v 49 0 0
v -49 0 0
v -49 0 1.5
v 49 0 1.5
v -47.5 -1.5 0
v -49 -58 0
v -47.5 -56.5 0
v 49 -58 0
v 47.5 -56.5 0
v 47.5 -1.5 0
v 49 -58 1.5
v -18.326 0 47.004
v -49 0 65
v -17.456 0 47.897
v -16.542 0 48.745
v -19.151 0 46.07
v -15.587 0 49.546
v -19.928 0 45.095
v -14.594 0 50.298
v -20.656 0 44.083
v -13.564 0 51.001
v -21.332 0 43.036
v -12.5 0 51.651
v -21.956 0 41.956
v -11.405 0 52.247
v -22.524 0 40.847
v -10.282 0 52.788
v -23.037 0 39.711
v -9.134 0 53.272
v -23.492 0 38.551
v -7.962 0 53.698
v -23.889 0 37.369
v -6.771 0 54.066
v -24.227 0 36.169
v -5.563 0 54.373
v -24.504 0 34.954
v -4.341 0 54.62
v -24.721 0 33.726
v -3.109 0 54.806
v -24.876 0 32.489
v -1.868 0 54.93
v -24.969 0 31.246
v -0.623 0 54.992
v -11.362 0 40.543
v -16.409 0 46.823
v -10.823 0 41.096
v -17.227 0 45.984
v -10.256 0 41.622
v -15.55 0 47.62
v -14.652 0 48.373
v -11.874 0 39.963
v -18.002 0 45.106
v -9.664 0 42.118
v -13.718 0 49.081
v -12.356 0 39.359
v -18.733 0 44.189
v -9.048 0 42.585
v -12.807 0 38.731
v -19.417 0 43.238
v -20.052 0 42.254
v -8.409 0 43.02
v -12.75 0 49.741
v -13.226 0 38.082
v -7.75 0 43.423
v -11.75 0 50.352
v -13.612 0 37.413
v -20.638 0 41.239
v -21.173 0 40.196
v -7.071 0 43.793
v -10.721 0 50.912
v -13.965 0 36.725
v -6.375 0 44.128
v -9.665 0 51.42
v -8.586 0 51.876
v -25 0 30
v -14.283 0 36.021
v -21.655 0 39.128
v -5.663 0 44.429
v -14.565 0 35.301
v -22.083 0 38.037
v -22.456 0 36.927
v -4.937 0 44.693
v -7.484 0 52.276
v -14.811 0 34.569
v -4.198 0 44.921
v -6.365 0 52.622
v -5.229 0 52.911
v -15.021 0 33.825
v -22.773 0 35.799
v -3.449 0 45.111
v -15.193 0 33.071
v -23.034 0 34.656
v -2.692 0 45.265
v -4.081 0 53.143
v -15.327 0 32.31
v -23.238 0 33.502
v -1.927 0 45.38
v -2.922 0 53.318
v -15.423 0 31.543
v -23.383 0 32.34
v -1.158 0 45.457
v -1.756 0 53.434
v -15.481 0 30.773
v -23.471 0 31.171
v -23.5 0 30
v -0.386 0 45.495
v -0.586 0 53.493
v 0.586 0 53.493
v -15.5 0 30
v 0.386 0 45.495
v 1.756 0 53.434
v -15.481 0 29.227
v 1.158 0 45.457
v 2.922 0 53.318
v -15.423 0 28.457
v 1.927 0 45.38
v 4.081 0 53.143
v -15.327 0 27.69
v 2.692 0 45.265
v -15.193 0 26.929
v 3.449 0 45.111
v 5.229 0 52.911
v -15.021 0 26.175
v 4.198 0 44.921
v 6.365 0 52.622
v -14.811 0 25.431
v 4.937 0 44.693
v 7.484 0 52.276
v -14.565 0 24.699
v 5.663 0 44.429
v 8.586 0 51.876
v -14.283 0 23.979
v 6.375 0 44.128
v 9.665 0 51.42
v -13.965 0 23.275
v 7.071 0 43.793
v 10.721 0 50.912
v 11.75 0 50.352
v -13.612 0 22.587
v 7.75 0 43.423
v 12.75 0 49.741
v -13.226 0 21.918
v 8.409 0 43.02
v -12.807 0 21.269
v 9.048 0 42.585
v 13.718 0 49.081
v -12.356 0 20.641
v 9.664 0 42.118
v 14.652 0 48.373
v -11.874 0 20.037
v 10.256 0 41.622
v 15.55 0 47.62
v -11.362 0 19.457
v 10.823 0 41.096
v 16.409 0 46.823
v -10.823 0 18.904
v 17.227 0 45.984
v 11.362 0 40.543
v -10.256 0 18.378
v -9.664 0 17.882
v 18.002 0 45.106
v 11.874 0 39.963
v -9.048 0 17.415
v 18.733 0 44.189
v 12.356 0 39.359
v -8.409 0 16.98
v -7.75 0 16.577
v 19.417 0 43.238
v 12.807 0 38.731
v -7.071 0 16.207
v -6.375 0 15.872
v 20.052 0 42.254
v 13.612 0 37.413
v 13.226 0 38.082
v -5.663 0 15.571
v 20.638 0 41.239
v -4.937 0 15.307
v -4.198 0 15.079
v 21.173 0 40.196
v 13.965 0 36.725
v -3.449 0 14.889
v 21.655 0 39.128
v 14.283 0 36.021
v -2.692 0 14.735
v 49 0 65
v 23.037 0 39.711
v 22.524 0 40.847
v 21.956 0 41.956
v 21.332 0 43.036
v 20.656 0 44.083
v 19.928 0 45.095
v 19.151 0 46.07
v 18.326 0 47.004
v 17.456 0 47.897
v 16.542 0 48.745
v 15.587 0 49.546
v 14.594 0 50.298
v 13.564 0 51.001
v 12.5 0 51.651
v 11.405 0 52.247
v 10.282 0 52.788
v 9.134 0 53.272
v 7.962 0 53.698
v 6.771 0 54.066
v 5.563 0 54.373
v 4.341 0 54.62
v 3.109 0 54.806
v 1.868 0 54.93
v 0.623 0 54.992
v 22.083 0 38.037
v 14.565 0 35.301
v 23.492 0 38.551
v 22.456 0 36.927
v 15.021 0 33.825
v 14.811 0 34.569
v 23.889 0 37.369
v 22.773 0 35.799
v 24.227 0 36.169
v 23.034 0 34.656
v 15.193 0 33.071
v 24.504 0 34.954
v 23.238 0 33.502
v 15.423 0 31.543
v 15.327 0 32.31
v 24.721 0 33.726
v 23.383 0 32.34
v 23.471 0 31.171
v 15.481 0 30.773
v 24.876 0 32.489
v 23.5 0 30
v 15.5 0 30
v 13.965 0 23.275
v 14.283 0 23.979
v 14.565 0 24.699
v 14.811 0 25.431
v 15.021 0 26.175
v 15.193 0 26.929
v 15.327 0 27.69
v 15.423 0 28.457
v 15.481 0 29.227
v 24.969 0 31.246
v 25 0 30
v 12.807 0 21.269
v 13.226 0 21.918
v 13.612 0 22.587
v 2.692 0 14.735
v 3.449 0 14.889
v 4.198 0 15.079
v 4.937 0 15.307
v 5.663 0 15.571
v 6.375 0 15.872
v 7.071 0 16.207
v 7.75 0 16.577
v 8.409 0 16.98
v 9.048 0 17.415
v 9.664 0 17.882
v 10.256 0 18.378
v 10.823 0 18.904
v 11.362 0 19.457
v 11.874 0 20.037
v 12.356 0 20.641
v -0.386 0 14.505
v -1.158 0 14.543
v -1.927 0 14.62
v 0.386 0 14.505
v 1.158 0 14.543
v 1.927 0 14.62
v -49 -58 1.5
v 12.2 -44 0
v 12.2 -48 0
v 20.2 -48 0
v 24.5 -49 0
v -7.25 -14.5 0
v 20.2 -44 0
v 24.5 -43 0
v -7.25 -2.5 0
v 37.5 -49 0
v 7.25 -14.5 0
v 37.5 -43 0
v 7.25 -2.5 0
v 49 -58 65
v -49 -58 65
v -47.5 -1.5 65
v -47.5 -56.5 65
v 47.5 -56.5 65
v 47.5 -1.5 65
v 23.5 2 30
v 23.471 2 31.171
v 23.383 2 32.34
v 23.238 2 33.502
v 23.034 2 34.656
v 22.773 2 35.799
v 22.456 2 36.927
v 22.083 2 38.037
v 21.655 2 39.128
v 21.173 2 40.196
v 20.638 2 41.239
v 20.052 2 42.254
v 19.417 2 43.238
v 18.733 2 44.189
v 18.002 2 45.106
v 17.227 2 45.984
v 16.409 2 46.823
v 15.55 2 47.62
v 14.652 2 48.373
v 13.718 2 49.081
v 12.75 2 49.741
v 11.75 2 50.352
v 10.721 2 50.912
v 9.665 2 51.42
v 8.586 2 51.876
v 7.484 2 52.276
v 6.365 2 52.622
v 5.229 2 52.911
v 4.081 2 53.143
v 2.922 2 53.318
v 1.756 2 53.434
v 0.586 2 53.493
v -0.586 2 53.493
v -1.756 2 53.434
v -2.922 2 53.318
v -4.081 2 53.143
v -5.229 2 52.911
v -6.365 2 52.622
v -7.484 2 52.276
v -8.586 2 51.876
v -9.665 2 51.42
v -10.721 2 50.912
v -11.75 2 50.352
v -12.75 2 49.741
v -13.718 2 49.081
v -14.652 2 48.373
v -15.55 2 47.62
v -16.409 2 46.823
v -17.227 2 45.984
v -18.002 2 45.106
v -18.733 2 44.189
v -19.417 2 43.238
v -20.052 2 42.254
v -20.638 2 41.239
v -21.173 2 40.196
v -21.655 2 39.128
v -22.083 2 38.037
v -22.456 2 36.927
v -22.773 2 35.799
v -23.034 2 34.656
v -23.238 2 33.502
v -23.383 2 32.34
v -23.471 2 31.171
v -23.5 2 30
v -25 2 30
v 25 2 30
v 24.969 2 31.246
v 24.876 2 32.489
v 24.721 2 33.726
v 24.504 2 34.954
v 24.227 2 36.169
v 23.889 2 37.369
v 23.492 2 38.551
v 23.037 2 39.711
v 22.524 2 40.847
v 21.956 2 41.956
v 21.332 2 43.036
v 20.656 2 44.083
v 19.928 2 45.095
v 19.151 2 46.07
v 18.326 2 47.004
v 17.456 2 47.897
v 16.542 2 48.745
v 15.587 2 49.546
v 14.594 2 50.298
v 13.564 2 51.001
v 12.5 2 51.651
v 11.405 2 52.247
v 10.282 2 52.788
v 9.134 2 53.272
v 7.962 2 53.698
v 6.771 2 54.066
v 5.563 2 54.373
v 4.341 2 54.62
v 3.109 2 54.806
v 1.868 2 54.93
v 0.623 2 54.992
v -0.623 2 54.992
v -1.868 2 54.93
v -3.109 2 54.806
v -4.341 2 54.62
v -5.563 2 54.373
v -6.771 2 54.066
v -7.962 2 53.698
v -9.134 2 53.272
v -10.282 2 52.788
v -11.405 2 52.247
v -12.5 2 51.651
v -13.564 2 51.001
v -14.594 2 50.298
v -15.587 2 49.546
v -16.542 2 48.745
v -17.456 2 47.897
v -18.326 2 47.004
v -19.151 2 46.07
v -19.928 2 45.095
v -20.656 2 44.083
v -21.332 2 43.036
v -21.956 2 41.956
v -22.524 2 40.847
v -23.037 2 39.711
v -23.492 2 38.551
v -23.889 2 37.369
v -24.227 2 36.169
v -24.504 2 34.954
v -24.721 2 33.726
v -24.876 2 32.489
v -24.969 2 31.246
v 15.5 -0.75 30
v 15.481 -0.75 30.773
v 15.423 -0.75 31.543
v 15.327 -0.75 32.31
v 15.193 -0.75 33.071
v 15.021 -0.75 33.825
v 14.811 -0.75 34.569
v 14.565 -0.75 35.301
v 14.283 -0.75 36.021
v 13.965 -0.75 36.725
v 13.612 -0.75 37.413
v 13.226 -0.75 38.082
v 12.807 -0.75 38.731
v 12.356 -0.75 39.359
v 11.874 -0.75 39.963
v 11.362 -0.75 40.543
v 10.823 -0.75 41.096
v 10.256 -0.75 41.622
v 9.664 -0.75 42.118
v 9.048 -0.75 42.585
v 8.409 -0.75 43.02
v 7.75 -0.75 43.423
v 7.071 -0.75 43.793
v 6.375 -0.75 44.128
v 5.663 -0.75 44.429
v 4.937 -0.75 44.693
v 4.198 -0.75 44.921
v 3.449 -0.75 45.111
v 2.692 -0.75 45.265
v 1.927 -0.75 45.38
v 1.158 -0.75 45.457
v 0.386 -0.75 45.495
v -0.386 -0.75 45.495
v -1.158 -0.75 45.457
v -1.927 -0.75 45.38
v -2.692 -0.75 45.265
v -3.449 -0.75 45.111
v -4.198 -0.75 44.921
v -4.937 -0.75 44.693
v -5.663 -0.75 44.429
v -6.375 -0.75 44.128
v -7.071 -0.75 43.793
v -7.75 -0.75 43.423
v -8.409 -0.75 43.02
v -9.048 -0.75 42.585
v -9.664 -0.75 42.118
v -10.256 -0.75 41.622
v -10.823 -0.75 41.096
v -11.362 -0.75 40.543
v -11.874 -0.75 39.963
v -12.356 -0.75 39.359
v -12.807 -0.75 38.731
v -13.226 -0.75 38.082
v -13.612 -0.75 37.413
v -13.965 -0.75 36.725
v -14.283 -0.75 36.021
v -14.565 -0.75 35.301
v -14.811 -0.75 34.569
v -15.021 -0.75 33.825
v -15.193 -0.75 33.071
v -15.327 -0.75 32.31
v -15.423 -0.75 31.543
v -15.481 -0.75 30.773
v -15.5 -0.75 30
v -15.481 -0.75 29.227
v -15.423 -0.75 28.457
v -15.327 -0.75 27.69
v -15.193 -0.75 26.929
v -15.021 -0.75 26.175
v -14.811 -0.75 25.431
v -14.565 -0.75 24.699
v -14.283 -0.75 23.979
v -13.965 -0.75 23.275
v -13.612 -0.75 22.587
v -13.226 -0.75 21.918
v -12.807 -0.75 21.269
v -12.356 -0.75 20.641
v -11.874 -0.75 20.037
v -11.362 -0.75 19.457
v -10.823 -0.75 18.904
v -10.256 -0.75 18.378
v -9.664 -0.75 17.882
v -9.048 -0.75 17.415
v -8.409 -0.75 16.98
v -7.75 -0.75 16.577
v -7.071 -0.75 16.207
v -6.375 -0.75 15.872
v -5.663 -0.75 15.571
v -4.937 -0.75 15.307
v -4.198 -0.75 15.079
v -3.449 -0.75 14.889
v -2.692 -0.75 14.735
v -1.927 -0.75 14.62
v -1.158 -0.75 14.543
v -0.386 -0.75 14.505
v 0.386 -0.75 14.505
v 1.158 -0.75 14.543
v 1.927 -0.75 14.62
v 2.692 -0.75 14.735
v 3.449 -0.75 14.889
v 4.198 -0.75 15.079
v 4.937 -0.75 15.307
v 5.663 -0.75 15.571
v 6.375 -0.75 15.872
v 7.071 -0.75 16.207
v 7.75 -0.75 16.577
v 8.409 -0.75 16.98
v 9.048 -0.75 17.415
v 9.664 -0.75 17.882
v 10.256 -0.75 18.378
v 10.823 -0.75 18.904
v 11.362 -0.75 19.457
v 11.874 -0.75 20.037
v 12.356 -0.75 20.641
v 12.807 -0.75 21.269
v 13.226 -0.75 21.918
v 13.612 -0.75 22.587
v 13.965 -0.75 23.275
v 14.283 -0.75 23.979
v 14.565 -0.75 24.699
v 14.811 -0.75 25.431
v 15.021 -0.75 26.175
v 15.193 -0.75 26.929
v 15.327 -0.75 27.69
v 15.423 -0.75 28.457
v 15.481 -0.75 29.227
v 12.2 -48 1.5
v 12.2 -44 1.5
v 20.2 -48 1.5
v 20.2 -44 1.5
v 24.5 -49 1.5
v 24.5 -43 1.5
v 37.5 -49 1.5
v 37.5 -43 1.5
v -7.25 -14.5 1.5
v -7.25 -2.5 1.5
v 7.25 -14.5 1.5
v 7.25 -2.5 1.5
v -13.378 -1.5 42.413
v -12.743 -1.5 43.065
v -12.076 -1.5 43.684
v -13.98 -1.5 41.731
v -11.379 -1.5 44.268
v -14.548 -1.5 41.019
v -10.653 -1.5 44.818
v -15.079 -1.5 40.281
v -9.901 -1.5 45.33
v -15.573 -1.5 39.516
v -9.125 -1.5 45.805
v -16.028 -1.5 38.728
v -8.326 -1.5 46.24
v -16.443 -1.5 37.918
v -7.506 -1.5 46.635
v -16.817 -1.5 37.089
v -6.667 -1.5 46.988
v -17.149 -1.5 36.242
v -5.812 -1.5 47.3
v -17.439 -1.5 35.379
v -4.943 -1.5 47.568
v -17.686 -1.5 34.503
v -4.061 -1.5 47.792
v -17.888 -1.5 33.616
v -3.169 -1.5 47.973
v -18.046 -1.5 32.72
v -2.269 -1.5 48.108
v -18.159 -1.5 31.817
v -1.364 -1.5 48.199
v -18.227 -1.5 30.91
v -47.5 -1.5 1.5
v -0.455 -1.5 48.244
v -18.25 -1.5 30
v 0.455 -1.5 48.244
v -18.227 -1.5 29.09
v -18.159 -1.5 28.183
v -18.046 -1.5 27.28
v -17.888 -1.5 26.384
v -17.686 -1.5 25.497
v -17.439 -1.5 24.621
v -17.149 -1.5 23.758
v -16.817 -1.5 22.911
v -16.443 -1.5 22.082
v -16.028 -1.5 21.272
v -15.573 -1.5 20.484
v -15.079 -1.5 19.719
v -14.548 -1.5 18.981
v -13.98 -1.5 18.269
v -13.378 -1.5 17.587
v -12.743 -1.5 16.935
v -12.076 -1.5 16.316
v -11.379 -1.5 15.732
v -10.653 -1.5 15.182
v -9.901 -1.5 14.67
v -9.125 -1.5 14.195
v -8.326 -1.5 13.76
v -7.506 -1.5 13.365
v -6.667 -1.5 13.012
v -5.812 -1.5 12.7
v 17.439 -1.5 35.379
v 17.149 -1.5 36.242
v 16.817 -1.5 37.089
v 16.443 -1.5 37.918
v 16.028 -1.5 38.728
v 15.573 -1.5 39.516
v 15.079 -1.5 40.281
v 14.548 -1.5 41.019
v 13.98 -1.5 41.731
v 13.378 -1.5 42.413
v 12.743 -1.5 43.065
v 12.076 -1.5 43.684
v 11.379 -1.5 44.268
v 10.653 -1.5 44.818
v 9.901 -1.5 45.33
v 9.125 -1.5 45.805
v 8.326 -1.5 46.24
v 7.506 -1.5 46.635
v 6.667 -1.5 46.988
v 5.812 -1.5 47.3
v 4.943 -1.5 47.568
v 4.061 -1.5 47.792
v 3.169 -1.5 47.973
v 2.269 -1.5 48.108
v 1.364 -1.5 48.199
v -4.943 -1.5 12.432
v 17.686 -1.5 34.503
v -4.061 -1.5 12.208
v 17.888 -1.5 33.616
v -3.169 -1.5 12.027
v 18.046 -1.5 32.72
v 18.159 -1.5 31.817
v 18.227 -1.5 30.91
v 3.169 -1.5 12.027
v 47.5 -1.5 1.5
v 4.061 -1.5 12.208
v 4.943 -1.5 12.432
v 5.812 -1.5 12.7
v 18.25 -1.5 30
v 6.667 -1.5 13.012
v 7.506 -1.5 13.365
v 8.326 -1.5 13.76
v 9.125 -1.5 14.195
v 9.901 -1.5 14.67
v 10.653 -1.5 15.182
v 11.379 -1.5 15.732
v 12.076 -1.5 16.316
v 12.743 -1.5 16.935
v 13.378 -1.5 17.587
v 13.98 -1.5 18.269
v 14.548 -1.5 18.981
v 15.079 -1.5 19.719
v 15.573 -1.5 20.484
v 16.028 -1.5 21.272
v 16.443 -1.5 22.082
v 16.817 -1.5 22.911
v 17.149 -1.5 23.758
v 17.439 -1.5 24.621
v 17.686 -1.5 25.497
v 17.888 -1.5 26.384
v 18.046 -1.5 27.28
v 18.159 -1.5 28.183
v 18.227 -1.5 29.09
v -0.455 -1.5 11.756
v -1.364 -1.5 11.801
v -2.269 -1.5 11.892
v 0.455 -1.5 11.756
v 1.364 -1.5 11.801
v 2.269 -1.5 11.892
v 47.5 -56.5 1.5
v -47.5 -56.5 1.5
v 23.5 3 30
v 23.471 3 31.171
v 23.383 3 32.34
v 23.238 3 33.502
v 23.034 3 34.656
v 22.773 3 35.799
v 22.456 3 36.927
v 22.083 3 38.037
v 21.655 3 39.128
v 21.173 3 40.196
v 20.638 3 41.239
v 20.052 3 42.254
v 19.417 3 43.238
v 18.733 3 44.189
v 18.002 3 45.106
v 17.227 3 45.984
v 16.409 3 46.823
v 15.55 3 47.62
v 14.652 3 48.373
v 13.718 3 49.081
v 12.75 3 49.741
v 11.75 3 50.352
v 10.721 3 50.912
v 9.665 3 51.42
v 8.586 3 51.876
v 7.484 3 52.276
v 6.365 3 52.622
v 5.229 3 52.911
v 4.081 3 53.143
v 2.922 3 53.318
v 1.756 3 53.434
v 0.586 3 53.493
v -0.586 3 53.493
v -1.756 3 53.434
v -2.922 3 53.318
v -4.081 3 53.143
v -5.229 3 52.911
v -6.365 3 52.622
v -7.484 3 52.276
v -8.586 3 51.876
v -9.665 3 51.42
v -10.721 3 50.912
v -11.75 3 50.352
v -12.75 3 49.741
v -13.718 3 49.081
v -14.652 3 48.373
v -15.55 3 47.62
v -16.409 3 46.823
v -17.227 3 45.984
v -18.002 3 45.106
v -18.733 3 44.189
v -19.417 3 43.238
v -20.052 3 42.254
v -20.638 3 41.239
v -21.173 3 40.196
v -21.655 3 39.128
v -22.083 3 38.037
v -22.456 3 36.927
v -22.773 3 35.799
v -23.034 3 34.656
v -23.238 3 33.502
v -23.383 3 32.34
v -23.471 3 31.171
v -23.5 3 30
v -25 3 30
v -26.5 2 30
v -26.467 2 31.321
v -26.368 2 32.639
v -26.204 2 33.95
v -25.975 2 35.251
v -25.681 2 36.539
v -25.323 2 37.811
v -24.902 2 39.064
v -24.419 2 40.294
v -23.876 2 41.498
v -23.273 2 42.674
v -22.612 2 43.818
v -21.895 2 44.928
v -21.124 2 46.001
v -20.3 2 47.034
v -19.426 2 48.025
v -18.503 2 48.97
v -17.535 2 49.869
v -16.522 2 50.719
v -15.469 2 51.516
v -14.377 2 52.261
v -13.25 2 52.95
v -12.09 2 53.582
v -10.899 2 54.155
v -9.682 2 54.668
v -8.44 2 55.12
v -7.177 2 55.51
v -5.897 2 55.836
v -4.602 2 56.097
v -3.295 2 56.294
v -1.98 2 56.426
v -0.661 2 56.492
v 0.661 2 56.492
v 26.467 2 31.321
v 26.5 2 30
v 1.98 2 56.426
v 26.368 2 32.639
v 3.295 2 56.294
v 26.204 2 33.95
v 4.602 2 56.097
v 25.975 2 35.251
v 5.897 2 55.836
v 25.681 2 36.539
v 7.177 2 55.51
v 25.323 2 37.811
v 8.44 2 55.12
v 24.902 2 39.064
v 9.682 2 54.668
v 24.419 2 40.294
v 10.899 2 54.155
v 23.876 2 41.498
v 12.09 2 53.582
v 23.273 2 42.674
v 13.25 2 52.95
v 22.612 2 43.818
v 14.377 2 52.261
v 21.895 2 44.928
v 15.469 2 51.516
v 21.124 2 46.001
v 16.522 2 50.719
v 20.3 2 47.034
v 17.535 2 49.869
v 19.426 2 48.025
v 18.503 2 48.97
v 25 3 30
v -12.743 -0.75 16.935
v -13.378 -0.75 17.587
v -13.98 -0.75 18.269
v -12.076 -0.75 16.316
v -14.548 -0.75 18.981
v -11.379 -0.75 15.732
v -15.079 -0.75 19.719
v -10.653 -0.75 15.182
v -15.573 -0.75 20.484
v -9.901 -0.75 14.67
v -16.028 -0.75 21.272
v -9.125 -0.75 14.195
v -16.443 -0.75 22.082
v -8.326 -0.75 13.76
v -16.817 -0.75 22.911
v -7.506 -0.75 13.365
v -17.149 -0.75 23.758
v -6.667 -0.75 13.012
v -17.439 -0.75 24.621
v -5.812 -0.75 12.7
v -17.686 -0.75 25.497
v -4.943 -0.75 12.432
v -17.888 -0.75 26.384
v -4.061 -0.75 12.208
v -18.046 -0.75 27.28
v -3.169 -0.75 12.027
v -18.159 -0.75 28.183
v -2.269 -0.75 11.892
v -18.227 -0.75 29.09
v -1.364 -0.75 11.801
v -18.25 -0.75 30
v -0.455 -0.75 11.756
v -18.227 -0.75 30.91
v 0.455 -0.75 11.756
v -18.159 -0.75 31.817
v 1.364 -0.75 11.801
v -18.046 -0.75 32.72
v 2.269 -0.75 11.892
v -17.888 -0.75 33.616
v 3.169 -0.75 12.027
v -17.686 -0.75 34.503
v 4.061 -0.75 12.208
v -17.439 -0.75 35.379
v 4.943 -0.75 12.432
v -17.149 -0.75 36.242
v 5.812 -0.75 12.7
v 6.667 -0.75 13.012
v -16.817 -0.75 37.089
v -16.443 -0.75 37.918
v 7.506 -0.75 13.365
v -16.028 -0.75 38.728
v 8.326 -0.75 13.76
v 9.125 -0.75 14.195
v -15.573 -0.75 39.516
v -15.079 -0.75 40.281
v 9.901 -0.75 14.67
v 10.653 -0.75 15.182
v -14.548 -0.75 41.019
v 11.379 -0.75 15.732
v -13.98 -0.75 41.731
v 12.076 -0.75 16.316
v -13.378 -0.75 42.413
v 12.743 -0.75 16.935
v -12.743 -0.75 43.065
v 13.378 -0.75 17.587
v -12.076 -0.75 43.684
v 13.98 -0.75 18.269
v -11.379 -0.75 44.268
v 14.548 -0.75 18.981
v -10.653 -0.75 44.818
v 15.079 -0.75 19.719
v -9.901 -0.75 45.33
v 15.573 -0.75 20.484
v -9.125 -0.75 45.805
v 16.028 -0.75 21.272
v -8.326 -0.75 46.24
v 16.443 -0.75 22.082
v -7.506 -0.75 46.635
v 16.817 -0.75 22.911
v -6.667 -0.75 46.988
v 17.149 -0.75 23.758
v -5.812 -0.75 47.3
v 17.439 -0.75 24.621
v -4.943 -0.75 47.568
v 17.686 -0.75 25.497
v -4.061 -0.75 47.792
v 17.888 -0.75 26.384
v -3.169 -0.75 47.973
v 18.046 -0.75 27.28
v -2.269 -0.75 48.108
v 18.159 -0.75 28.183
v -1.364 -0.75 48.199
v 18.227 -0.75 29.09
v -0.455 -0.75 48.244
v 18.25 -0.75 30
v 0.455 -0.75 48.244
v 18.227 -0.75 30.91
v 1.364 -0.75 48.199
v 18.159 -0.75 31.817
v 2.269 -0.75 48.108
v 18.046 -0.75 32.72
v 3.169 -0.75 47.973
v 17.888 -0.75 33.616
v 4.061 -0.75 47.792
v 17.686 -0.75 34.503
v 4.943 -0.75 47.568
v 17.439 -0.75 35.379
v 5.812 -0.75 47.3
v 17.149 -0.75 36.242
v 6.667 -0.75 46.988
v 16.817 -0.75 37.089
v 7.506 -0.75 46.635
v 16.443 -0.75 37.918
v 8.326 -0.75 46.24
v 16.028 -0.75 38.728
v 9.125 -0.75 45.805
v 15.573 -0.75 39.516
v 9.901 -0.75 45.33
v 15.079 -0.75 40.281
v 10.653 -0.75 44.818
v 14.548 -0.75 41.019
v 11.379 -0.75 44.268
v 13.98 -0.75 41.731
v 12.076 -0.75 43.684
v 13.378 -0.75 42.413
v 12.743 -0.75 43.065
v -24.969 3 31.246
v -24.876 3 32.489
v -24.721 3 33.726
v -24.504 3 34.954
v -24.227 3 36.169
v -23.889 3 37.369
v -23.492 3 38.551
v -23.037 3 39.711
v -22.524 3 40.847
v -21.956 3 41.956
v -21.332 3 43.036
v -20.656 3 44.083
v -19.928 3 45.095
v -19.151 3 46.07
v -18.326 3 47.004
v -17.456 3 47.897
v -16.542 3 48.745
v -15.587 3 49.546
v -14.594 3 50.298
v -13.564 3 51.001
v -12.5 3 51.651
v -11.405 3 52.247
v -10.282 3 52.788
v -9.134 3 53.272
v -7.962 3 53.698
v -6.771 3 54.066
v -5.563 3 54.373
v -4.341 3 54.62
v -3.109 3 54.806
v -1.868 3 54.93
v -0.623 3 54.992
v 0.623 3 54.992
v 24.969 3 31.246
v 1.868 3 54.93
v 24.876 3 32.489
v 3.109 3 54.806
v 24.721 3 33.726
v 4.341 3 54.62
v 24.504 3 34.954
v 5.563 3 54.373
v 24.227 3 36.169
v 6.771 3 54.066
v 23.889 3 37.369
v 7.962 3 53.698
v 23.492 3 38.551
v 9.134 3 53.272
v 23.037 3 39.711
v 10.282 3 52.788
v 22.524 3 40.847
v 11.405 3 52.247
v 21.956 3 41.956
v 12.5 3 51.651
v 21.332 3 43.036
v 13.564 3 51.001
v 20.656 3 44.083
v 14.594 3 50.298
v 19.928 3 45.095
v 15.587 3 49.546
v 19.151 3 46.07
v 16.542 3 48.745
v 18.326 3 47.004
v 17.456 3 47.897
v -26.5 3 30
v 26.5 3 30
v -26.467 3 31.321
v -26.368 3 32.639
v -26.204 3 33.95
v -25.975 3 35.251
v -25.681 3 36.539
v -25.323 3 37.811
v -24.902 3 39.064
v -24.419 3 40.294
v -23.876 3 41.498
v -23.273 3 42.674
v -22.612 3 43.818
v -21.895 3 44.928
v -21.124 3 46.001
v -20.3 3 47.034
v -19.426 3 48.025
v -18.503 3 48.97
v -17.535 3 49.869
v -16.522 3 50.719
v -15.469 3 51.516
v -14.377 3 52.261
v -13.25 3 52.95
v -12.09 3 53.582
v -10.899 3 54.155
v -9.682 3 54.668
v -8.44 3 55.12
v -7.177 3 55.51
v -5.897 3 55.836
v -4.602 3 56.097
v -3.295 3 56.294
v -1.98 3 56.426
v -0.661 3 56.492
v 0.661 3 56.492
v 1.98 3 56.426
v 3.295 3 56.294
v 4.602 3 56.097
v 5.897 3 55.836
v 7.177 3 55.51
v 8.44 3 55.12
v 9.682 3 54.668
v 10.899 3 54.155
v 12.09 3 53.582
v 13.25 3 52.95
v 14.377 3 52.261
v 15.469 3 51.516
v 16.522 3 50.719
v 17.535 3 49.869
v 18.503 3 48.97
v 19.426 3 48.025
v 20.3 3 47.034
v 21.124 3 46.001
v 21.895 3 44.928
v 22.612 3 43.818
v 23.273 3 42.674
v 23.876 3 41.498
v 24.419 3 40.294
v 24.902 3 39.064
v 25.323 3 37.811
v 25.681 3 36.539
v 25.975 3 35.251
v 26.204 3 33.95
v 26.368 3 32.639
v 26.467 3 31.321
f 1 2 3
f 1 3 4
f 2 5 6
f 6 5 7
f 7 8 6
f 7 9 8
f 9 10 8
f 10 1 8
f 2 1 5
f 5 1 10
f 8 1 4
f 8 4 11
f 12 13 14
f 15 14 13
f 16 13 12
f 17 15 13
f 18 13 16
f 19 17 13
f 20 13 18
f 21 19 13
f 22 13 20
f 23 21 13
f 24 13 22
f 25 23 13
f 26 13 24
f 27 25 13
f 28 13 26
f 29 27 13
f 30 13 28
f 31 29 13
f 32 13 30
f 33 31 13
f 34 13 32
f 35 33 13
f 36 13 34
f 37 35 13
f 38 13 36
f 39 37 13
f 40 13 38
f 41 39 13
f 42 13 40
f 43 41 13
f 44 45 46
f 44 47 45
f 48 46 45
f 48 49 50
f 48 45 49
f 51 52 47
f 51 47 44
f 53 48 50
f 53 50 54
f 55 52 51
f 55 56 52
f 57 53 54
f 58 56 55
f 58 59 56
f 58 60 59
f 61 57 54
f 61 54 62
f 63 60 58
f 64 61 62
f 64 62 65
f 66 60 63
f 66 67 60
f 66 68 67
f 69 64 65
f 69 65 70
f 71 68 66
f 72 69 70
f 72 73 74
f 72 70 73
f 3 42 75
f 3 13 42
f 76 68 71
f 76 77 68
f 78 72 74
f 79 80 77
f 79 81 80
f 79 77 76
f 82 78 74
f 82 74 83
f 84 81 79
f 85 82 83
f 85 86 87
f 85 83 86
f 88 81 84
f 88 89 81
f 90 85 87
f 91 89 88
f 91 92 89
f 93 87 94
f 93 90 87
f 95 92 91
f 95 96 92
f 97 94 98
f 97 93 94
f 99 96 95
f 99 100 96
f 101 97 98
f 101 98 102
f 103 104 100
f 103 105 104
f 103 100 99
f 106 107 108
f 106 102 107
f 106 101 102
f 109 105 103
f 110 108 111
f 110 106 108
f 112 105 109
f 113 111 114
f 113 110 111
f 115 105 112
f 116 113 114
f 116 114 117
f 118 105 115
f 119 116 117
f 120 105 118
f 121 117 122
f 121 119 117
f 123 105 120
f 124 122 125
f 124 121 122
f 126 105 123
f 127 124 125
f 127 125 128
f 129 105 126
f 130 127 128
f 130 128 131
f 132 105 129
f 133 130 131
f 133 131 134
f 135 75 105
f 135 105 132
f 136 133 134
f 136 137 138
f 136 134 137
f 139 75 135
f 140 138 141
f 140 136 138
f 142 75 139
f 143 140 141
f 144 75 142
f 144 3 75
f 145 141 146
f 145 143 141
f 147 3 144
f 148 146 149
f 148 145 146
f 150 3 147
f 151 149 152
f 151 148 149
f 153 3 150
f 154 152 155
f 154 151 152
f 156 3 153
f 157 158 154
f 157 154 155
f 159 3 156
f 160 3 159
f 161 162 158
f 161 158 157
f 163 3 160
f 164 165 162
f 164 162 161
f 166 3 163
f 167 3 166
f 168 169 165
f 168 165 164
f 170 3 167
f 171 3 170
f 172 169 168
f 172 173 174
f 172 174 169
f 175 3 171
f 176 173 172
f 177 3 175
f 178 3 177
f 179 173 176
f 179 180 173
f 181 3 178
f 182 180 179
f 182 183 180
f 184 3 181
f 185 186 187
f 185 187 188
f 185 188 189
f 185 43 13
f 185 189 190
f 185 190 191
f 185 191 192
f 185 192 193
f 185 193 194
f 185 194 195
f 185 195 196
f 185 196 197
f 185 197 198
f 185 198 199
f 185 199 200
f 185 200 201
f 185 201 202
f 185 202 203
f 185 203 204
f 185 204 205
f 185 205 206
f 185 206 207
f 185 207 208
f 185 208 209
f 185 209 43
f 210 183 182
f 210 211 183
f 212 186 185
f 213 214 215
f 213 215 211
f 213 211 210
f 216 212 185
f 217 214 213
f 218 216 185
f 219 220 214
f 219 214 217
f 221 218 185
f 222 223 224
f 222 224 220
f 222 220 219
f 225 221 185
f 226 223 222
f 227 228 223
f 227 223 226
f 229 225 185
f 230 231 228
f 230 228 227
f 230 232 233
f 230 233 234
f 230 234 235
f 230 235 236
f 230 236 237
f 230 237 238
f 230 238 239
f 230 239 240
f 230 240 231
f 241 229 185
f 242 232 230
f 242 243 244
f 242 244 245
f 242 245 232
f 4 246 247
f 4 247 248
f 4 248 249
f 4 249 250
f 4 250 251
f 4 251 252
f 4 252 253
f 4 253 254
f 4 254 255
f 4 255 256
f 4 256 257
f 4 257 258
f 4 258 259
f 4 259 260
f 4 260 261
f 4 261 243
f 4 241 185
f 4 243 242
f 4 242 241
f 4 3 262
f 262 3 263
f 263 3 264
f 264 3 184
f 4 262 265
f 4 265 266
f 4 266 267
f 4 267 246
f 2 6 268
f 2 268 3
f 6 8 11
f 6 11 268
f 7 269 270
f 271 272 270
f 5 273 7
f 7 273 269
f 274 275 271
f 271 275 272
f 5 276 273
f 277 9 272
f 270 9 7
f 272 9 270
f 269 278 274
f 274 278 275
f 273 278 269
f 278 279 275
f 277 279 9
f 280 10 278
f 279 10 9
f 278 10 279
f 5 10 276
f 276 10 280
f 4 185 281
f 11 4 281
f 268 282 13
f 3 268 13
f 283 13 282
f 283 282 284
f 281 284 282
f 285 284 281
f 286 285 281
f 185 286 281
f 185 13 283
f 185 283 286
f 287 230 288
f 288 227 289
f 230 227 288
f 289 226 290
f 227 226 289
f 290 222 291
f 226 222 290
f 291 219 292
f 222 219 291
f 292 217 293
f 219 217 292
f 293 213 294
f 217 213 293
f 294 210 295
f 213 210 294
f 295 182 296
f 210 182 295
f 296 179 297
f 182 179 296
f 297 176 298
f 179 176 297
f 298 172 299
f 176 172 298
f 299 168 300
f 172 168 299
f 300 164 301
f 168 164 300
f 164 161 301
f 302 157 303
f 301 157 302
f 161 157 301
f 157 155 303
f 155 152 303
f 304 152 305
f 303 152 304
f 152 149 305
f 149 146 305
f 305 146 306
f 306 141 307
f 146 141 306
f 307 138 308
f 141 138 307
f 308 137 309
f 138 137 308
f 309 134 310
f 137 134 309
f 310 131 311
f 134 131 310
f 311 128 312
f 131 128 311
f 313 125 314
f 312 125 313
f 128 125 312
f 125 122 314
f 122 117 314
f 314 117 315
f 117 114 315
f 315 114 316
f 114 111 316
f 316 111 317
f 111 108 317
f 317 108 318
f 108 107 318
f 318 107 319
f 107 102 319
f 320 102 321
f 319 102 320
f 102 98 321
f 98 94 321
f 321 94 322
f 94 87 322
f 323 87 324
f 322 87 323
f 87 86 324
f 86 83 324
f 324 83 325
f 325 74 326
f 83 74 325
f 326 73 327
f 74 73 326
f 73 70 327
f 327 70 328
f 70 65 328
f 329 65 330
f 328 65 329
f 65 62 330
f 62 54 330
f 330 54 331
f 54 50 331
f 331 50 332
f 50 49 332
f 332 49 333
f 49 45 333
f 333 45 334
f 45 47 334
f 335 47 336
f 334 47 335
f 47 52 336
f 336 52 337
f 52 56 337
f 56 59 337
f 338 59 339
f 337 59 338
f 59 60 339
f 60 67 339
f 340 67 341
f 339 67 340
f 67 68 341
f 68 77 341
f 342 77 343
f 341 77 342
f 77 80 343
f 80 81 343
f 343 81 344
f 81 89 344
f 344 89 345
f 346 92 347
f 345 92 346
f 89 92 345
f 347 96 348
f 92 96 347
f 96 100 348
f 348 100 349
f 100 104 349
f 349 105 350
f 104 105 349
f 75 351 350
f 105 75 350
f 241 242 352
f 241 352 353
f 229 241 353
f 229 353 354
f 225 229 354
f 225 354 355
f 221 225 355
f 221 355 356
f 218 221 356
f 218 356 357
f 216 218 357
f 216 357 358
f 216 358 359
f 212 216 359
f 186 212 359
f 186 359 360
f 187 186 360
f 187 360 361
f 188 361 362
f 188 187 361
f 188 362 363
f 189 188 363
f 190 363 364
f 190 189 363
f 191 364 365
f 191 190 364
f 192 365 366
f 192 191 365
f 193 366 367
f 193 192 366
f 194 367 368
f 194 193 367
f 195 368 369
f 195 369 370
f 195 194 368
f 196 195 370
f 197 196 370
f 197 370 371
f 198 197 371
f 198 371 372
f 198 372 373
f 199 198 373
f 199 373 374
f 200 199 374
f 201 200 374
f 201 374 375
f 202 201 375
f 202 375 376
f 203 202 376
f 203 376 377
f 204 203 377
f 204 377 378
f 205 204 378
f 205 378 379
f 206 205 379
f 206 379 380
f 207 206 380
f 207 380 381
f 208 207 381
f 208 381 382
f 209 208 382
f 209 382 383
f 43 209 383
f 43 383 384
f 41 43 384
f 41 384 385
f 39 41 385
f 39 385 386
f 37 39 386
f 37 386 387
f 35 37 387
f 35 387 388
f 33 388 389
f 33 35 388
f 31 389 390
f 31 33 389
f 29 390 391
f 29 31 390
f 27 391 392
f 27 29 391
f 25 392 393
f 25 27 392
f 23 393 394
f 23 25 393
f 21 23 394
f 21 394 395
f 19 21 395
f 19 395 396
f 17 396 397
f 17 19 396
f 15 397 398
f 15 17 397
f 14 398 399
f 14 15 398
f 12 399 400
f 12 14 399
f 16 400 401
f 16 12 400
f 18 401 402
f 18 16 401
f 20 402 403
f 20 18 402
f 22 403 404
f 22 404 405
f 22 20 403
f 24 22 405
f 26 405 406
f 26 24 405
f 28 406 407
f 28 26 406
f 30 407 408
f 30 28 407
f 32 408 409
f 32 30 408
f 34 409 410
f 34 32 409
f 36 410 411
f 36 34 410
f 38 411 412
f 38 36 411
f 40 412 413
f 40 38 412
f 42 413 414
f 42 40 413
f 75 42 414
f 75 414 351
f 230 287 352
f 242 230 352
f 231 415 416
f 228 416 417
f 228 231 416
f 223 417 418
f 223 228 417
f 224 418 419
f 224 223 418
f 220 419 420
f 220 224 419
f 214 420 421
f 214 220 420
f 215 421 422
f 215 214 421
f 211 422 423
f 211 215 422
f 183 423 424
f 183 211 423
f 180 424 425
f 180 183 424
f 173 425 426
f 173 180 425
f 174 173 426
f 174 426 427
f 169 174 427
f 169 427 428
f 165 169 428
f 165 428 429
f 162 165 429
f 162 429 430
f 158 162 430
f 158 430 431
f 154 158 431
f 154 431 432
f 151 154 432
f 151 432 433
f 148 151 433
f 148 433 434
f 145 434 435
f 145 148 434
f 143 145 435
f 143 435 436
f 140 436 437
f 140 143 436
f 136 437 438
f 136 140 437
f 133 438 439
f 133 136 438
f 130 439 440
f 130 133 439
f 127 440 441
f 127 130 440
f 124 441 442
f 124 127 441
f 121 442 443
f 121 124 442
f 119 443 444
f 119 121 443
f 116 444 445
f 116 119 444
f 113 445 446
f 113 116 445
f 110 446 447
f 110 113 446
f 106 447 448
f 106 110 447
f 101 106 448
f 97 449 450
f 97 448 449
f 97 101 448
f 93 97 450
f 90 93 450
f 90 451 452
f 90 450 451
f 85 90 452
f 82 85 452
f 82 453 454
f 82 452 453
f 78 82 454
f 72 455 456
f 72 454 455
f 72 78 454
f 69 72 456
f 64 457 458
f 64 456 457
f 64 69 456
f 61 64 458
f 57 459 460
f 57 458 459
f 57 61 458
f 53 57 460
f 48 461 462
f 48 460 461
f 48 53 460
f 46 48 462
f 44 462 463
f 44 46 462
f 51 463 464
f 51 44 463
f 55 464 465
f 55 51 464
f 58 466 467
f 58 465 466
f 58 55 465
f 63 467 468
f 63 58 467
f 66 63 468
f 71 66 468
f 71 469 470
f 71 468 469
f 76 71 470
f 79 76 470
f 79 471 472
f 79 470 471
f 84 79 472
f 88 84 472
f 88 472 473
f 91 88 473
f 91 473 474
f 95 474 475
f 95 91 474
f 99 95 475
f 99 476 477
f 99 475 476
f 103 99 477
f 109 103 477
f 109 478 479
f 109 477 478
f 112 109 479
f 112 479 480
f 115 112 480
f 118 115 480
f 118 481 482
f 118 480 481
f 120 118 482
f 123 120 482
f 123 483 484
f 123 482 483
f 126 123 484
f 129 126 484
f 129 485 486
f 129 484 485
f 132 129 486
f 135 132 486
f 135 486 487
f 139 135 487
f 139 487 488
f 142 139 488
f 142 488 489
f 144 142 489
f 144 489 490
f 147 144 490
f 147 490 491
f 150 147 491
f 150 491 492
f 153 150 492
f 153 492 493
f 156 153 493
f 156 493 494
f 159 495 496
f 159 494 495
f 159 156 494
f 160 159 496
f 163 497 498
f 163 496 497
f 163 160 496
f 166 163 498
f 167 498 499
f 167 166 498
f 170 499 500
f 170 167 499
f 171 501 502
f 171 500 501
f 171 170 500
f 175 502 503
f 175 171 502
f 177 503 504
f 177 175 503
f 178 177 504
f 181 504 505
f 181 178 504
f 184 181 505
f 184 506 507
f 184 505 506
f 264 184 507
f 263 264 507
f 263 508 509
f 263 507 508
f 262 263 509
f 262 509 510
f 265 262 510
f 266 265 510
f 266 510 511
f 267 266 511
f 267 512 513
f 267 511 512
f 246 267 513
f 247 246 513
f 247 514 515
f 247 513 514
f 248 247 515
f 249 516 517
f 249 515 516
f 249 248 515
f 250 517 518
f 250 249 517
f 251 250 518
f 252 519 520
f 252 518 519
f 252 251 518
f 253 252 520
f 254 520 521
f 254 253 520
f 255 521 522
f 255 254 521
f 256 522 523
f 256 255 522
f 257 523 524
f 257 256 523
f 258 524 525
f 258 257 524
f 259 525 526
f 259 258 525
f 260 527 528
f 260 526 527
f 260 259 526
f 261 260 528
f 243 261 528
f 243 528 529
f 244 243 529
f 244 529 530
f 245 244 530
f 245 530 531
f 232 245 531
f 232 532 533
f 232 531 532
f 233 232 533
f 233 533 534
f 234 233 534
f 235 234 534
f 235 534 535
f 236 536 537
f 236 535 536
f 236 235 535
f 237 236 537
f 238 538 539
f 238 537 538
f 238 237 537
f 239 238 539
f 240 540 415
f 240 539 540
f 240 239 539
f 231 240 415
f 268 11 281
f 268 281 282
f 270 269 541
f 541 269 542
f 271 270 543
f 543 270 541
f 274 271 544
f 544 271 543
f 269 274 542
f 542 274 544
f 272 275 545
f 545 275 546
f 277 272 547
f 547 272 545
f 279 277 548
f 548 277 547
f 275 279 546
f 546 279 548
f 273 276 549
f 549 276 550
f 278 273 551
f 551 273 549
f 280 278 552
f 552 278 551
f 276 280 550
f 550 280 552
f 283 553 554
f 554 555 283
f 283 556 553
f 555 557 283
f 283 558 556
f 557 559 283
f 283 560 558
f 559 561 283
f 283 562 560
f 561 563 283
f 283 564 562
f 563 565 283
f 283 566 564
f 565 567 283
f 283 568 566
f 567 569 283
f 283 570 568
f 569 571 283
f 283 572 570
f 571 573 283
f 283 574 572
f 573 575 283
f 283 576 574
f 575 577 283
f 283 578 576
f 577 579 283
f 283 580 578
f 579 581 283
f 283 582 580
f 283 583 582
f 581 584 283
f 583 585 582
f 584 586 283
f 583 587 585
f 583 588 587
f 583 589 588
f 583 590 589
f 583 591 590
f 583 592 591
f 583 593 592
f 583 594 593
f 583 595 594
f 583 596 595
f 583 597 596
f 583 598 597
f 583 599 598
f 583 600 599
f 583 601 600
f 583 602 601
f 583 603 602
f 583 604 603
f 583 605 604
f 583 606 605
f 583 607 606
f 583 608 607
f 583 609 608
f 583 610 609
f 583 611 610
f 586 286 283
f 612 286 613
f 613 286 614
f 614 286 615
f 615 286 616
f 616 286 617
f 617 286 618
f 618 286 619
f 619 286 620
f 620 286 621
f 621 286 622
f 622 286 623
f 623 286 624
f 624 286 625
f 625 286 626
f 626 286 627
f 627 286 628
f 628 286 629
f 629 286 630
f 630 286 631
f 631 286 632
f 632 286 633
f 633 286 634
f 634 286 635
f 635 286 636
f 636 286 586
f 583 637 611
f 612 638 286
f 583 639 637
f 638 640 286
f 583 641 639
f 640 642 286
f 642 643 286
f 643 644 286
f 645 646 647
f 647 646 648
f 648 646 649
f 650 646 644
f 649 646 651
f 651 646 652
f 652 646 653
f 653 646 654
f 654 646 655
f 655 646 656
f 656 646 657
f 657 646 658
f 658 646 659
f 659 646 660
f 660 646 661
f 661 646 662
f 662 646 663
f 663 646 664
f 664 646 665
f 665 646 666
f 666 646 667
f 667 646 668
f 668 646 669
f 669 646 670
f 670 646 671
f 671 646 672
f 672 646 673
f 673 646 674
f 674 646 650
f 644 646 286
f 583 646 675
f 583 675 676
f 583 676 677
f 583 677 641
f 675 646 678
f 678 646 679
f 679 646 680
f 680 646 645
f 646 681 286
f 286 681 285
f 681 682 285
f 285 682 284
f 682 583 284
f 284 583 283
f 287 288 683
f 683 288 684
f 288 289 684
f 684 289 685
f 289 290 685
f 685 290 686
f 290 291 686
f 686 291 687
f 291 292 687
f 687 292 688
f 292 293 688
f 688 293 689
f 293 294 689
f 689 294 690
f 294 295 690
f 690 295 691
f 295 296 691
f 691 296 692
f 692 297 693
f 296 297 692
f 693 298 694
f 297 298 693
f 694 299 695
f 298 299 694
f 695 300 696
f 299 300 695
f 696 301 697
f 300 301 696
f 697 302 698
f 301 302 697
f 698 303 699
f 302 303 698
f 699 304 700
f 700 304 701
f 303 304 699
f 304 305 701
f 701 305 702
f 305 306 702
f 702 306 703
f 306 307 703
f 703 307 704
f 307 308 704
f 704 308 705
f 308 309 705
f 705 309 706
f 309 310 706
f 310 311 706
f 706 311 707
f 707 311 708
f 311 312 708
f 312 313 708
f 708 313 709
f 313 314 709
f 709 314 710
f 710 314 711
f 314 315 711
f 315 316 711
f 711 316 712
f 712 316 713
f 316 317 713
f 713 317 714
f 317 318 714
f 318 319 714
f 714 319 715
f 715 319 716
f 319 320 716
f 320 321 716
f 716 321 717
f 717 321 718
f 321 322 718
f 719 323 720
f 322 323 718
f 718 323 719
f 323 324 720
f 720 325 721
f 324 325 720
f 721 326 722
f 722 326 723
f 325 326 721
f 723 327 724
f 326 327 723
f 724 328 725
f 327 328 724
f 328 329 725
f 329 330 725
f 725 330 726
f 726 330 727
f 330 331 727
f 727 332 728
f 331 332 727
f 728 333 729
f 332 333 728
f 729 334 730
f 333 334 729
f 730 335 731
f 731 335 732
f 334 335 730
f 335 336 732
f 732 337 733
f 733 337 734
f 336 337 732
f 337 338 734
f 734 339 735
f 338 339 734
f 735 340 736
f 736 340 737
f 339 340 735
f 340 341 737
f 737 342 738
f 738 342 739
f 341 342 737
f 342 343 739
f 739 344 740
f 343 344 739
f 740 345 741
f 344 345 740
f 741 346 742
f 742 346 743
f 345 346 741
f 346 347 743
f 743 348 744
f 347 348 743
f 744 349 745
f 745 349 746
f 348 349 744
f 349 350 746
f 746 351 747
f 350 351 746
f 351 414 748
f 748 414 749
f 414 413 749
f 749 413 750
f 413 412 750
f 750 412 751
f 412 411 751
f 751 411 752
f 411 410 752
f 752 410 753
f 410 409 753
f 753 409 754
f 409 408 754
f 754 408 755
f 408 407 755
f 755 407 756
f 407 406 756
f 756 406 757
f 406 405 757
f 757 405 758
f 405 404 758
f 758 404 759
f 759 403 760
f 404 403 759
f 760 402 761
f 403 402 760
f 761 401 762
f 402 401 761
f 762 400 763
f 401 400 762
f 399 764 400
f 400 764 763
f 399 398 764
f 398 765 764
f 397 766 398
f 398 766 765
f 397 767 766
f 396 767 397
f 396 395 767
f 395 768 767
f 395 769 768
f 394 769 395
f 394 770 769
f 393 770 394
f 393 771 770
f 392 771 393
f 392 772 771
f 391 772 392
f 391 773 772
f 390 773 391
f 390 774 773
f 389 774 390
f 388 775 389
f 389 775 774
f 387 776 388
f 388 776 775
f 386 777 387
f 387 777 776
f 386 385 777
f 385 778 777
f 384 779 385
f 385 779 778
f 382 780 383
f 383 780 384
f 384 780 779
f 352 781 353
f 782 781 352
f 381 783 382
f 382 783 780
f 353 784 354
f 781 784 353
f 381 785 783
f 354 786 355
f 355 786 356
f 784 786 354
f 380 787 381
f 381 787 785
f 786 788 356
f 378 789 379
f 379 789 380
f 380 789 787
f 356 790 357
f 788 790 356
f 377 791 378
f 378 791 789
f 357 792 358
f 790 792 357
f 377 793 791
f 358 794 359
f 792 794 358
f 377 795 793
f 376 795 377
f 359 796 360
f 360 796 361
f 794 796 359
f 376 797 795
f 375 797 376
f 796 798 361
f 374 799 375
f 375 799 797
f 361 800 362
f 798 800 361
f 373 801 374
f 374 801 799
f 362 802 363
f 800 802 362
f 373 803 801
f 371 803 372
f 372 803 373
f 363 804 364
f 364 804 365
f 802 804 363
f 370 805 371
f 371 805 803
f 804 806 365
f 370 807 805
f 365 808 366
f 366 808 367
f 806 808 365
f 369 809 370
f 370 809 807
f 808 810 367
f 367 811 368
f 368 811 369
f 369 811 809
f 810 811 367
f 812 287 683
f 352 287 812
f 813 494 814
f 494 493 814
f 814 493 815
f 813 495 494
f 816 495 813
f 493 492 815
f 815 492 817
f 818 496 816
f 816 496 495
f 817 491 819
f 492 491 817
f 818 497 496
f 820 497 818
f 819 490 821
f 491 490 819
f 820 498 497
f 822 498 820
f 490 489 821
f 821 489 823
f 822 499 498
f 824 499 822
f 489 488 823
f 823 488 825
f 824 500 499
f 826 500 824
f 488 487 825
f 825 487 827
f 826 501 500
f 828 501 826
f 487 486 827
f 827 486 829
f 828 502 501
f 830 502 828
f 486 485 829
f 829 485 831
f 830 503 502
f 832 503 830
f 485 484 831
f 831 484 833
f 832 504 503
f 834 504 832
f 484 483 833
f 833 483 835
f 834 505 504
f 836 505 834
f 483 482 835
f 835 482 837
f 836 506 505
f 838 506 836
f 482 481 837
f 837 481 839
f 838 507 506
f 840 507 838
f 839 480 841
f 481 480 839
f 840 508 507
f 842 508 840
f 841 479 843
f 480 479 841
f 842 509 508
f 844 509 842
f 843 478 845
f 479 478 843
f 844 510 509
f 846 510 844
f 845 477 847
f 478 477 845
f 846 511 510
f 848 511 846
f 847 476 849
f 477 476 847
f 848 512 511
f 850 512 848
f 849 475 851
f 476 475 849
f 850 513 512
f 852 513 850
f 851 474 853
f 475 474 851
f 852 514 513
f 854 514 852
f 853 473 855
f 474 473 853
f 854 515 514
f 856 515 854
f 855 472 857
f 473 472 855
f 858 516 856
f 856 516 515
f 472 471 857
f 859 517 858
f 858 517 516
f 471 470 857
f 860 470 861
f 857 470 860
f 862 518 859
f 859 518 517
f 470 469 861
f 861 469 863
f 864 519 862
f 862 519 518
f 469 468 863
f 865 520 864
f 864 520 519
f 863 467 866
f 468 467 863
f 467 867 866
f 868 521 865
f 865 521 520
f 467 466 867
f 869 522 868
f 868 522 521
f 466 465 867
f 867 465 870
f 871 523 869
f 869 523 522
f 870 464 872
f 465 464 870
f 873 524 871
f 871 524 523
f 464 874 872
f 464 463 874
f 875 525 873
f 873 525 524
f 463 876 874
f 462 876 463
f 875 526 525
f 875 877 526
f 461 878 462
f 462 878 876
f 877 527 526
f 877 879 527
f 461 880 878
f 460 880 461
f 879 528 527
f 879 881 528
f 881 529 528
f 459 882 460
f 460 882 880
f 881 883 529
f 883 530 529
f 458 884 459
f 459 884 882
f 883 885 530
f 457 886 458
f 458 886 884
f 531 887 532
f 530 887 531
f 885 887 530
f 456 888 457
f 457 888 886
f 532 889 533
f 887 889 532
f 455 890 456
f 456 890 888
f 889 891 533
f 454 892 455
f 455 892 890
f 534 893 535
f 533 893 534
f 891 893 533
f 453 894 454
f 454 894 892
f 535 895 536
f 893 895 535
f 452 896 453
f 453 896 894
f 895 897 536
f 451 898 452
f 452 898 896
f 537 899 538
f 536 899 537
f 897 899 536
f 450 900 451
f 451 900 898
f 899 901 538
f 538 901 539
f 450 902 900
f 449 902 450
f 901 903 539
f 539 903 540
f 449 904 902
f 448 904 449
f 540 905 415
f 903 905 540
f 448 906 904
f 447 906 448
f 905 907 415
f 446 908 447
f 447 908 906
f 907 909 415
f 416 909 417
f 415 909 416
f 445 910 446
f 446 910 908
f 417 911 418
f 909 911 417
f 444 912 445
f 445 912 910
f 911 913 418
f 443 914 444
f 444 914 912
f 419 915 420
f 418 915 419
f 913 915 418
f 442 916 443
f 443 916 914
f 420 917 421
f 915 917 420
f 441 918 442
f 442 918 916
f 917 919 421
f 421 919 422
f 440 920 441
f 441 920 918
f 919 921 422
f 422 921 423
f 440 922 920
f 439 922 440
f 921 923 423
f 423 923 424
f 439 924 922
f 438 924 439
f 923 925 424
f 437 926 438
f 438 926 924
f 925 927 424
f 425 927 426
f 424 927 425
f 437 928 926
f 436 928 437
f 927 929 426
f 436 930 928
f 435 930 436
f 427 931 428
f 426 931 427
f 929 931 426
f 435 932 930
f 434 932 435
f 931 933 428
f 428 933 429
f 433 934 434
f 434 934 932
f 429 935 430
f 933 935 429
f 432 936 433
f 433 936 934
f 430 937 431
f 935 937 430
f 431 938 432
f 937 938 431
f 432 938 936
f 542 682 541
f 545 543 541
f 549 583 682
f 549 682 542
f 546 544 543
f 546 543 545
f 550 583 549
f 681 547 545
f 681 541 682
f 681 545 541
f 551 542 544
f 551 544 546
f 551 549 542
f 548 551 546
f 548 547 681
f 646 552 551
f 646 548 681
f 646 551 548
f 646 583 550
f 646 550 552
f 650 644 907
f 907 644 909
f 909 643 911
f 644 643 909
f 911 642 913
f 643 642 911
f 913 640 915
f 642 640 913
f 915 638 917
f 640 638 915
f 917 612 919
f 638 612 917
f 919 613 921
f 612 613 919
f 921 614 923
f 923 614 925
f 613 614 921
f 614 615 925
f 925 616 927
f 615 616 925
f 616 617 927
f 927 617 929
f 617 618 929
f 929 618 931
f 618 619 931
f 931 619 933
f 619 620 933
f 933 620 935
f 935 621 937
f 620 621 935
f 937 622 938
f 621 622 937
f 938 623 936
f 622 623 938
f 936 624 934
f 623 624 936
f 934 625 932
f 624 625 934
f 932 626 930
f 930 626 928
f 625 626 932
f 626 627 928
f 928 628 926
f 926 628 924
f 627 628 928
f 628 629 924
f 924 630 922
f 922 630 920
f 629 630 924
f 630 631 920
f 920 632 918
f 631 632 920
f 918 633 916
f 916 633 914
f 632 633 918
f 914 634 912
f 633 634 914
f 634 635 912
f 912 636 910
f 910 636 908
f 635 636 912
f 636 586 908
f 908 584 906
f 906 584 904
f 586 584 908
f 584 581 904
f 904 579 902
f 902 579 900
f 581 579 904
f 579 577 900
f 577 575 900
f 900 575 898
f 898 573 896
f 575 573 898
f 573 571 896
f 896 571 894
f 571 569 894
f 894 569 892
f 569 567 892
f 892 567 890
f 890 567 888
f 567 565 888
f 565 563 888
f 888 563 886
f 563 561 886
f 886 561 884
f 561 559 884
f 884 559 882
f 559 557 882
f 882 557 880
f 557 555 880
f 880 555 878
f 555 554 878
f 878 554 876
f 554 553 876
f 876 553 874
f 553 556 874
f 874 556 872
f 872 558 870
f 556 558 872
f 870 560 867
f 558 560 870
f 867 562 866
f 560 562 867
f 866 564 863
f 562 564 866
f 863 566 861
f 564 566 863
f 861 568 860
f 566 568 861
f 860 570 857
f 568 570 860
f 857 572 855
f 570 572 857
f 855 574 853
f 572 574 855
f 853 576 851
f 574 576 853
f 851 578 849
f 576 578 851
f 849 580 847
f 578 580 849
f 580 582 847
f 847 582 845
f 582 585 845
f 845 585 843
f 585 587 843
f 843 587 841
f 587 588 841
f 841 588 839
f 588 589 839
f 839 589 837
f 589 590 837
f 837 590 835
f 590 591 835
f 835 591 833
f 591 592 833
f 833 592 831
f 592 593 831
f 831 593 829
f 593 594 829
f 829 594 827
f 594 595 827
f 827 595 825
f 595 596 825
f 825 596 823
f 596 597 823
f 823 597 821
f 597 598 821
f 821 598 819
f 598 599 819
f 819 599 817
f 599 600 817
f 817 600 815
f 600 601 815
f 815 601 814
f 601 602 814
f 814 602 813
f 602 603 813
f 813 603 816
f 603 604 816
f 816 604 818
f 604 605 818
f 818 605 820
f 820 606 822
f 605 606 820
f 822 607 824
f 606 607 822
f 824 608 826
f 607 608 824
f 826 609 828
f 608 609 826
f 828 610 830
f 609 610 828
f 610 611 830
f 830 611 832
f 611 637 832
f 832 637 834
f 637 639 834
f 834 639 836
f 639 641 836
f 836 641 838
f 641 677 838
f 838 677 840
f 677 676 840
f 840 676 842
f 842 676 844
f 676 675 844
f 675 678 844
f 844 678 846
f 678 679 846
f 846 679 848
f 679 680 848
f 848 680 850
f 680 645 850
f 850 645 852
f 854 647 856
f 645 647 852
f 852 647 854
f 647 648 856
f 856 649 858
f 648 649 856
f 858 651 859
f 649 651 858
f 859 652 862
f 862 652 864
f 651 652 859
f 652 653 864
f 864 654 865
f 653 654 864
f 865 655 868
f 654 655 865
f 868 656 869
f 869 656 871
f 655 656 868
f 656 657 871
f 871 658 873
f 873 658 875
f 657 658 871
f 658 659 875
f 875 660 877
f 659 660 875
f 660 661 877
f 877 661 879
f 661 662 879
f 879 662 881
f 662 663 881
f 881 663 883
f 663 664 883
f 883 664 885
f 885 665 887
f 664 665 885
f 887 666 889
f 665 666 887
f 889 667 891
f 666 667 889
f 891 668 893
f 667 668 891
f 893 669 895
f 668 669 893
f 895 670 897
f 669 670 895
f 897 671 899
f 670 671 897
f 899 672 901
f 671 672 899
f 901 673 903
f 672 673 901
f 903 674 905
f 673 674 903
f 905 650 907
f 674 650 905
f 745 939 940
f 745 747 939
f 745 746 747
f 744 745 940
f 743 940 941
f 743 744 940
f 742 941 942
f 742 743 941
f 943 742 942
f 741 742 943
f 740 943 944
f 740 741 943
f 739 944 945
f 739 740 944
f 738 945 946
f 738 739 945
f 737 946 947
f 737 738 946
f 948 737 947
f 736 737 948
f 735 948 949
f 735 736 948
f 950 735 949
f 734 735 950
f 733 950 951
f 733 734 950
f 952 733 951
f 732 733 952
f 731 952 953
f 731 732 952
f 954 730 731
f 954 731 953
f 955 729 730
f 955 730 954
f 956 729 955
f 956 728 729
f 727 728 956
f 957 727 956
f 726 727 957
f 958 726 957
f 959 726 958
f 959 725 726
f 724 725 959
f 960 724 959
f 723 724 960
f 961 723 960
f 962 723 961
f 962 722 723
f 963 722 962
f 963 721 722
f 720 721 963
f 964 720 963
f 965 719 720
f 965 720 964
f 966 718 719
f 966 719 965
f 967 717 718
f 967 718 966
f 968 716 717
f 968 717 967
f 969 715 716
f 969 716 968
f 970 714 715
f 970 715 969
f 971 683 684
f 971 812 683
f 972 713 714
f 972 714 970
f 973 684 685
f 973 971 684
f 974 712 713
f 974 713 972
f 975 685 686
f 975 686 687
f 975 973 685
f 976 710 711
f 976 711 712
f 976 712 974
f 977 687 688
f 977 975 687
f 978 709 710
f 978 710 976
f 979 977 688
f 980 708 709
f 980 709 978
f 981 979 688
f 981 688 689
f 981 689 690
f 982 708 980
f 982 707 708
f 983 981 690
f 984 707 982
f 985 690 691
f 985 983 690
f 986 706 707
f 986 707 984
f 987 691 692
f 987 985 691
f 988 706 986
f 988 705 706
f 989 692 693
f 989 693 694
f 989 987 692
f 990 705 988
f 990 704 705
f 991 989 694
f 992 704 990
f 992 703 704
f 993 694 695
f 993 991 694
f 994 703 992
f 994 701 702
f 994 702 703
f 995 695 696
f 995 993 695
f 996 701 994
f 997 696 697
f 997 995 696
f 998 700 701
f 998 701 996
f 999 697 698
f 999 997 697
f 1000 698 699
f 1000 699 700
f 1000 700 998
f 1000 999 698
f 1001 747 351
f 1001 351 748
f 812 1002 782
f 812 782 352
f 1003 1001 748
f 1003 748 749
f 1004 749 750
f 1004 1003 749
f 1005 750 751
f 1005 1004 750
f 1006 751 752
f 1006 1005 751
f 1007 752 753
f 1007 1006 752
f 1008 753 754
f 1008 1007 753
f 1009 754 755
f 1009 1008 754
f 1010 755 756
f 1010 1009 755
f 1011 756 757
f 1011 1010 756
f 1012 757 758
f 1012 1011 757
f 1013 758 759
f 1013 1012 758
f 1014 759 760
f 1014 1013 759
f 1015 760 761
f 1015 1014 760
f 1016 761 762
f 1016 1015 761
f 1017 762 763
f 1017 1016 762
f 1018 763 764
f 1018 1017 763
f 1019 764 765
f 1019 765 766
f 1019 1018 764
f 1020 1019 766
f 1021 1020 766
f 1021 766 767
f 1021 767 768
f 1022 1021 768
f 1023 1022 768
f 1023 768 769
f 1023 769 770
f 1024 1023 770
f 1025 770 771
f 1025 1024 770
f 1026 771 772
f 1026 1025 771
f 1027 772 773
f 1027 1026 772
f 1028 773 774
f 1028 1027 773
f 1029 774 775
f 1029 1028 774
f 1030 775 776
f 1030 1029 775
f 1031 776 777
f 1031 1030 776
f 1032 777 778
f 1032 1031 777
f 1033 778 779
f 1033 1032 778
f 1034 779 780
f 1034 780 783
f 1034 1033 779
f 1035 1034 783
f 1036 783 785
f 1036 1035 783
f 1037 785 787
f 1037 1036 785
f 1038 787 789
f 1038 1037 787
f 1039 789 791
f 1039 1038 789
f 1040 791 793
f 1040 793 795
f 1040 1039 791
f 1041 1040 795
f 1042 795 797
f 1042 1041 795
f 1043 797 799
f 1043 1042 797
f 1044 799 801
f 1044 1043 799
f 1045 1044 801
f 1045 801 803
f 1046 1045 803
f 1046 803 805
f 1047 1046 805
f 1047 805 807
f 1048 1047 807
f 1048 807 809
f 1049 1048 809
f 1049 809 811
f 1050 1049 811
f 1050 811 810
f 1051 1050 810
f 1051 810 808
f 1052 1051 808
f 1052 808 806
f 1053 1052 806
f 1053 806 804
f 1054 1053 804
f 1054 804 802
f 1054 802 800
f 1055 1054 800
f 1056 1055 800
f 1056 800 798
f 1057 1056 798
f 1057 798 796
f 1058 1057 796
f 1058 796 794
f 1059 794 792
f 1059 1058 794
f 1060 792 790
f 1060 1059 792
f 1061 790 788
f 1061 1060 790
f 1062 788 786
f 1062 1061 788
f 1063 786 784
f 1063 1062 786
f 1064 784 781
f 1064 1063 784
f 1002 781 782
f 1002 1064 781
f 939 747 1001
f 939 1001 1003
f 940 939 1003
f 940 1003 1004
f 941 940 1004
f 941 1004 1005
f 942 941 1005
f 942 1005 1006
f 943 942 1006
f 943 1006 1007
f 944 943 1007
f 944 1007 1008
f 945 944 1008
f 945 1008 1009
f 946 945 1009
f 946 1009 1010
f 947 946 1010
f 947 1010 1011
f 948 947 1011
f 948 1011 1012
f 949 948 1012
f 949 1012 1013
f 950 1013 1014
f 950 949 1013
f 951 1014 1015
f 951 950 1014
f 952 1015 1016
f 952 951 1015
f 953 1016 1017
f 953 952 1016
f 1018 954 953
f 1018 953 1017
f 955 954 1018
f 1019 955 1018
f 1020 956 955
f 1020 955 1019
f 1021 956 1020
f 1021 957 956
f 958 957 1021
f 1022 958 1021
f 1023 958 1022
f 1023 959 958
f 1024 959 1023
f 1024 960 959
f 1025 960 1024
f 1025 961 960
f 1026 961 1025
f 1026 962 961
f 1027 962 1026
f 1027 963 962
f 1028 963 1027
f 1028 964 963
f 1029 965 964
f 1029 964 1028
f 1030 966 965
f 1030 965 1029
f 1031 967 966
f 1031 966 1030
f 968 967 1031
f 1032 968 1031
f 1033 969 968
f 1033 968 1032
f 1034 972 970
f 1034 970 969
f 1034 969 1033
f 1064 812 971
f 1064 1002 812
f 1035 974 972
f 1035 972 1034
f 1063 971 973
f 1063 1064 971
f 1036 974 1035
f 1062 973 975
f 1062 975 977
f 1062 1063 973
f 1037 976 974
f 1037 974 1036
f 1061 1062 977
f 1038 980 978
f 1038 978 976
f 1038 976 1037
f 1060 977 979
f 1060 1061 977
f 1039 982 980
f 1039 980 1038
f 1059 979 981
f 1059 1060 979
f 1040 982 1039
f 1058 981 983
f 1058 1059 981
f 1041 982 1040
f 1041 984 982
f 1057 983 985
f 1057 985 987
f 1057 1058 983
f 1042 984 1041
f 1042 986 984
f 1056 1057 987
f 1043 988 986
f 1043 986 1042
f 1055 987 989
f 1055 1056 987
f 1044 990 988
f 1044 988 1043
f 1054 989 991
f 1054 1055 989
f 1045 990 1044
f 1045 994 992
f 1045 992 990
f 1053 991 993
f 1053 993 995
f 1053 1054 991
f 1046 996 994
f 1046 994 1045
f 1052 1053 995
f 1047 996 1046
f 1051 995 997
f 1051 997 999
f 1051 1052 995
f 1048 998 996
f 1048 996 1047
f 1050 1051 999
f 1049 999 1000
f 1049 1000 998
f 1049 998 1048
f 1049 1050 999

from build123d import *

# Parameters (mm, degrees)
SKETCH_W        = 98
SKETCH_H        = 58
SKETCH_W_2      = 95
SKETCH_H_2      = 55
PAD_DEPTH       = 65
SKETCH001_W     = 98
SKETCH001_H     = 58
PAD001_DEPTH    = 1.5
SKETCH002_R     = 15.5
POCKET_DEPTH    = 5
SKETCH004_R     = 18.25
POCKET002_DEPTH = 0.75
SKETCH003_W     = 14.5
SKETCH003_H     = 12
SKETCH003_W_2   = 13
SKETCH003_H_2   = 6
SKETCH003_W_3   = 8
SKETCH003_H_3   = 4
POCKET003_DEPTH = 5
PAD002_DEPTH    = 3
PAD003_DEPTH    = 1


with BuildPart() as part:
    # Sketch → Pad (new body)
    with BuildSketch(Plane.XY):
        with Locations((0, -29)):
            Rectangle(SKETCH_W, SKETCH_H)
        with Locations((0, -29)):
            Rectangle(SKETCH_W_2, SKETCH_H_2, mode=Mode.SUBTRACT)
    extrude(amount=PAD_DEPTH)

    # Sketch001 → Pad001 (join)
    with BuildSketch(Plane.XY):
        with Locations((0, -29)):
            Rectangle(SKETCH001_W, SKETCH001_H)
    extrude(amount=PAD001_DEPTH)

    # Sketch002 → Pocket (cut)
    with BuildSketch(Plane.XZ):
        with Locations((0, 30)):
            Circle(SKETCH002_R)
    extrude(amount=POCKET_DEPTH, mode=Mode.SUBTRACT)

    # Sketch004 → Pocket002 (cut)
    with BuildSketch(Plane.XZ.offset(1.5)):
        with Locations((0, 30)):
            Circle(SKETCH004_R)
    extrude(amount=-POCKET002_DEPTH, mode=Mode.SUBTRACT)

    # Sketch003 → Pocket003 (cut)
    with BuildSketch(Plane.XY):
        with Locations((0, -8.5)):
            Rectangle(SKETCH003_W, SKETCH003_H)
        with Locations((31, -46)):
            Rectangle(SKETCH003_W_2, SKETCH003_H_2)
        with Locations((16.2, -46)):
            Rectangle(SKETCH003_W_3, SKETCH003_H_3)
    extrude(amount=POCKET003_DEPTH, mode=Mode.SUBTRACT)

    # Sketch005 → Pad002 (join)
    with BuildSketch(Plane.XZ):
        with BuildLine():
            ThreePointArc((23.5, 30), (0, 53.5), (-23.5, 30))
            Line((-25, 30), (-23.5, 30))
            ThreePointArc((25, 30), (0, 55), (-25, 30))
            Line((23.5, 30), (25, 30))
        make_face()
    extrude(amount=-PAD002_DEPTH)

    # Sketch006 (on Face33 of Pad002) → Pad003 (join)
    with BuildSketch(Plane(origin=(0, 3, 0), x_dir=(-1, 0, 0), z_dir=(0, 1, 0))):
        with BuildLine():
            ThreePointArc((26.5, 30), (0, 56.5), (-26.5, 30))
            Line((-26.5, 30), (-23.5, 30))
            ThreePointArc((23.5, 30), (0, 53.5), (-23.5, 30))
            Line((23.5, 30), (26.5, 30))
        make_face()
    extrude(amount=-PAD003_DEPTH)


solid = part.part
